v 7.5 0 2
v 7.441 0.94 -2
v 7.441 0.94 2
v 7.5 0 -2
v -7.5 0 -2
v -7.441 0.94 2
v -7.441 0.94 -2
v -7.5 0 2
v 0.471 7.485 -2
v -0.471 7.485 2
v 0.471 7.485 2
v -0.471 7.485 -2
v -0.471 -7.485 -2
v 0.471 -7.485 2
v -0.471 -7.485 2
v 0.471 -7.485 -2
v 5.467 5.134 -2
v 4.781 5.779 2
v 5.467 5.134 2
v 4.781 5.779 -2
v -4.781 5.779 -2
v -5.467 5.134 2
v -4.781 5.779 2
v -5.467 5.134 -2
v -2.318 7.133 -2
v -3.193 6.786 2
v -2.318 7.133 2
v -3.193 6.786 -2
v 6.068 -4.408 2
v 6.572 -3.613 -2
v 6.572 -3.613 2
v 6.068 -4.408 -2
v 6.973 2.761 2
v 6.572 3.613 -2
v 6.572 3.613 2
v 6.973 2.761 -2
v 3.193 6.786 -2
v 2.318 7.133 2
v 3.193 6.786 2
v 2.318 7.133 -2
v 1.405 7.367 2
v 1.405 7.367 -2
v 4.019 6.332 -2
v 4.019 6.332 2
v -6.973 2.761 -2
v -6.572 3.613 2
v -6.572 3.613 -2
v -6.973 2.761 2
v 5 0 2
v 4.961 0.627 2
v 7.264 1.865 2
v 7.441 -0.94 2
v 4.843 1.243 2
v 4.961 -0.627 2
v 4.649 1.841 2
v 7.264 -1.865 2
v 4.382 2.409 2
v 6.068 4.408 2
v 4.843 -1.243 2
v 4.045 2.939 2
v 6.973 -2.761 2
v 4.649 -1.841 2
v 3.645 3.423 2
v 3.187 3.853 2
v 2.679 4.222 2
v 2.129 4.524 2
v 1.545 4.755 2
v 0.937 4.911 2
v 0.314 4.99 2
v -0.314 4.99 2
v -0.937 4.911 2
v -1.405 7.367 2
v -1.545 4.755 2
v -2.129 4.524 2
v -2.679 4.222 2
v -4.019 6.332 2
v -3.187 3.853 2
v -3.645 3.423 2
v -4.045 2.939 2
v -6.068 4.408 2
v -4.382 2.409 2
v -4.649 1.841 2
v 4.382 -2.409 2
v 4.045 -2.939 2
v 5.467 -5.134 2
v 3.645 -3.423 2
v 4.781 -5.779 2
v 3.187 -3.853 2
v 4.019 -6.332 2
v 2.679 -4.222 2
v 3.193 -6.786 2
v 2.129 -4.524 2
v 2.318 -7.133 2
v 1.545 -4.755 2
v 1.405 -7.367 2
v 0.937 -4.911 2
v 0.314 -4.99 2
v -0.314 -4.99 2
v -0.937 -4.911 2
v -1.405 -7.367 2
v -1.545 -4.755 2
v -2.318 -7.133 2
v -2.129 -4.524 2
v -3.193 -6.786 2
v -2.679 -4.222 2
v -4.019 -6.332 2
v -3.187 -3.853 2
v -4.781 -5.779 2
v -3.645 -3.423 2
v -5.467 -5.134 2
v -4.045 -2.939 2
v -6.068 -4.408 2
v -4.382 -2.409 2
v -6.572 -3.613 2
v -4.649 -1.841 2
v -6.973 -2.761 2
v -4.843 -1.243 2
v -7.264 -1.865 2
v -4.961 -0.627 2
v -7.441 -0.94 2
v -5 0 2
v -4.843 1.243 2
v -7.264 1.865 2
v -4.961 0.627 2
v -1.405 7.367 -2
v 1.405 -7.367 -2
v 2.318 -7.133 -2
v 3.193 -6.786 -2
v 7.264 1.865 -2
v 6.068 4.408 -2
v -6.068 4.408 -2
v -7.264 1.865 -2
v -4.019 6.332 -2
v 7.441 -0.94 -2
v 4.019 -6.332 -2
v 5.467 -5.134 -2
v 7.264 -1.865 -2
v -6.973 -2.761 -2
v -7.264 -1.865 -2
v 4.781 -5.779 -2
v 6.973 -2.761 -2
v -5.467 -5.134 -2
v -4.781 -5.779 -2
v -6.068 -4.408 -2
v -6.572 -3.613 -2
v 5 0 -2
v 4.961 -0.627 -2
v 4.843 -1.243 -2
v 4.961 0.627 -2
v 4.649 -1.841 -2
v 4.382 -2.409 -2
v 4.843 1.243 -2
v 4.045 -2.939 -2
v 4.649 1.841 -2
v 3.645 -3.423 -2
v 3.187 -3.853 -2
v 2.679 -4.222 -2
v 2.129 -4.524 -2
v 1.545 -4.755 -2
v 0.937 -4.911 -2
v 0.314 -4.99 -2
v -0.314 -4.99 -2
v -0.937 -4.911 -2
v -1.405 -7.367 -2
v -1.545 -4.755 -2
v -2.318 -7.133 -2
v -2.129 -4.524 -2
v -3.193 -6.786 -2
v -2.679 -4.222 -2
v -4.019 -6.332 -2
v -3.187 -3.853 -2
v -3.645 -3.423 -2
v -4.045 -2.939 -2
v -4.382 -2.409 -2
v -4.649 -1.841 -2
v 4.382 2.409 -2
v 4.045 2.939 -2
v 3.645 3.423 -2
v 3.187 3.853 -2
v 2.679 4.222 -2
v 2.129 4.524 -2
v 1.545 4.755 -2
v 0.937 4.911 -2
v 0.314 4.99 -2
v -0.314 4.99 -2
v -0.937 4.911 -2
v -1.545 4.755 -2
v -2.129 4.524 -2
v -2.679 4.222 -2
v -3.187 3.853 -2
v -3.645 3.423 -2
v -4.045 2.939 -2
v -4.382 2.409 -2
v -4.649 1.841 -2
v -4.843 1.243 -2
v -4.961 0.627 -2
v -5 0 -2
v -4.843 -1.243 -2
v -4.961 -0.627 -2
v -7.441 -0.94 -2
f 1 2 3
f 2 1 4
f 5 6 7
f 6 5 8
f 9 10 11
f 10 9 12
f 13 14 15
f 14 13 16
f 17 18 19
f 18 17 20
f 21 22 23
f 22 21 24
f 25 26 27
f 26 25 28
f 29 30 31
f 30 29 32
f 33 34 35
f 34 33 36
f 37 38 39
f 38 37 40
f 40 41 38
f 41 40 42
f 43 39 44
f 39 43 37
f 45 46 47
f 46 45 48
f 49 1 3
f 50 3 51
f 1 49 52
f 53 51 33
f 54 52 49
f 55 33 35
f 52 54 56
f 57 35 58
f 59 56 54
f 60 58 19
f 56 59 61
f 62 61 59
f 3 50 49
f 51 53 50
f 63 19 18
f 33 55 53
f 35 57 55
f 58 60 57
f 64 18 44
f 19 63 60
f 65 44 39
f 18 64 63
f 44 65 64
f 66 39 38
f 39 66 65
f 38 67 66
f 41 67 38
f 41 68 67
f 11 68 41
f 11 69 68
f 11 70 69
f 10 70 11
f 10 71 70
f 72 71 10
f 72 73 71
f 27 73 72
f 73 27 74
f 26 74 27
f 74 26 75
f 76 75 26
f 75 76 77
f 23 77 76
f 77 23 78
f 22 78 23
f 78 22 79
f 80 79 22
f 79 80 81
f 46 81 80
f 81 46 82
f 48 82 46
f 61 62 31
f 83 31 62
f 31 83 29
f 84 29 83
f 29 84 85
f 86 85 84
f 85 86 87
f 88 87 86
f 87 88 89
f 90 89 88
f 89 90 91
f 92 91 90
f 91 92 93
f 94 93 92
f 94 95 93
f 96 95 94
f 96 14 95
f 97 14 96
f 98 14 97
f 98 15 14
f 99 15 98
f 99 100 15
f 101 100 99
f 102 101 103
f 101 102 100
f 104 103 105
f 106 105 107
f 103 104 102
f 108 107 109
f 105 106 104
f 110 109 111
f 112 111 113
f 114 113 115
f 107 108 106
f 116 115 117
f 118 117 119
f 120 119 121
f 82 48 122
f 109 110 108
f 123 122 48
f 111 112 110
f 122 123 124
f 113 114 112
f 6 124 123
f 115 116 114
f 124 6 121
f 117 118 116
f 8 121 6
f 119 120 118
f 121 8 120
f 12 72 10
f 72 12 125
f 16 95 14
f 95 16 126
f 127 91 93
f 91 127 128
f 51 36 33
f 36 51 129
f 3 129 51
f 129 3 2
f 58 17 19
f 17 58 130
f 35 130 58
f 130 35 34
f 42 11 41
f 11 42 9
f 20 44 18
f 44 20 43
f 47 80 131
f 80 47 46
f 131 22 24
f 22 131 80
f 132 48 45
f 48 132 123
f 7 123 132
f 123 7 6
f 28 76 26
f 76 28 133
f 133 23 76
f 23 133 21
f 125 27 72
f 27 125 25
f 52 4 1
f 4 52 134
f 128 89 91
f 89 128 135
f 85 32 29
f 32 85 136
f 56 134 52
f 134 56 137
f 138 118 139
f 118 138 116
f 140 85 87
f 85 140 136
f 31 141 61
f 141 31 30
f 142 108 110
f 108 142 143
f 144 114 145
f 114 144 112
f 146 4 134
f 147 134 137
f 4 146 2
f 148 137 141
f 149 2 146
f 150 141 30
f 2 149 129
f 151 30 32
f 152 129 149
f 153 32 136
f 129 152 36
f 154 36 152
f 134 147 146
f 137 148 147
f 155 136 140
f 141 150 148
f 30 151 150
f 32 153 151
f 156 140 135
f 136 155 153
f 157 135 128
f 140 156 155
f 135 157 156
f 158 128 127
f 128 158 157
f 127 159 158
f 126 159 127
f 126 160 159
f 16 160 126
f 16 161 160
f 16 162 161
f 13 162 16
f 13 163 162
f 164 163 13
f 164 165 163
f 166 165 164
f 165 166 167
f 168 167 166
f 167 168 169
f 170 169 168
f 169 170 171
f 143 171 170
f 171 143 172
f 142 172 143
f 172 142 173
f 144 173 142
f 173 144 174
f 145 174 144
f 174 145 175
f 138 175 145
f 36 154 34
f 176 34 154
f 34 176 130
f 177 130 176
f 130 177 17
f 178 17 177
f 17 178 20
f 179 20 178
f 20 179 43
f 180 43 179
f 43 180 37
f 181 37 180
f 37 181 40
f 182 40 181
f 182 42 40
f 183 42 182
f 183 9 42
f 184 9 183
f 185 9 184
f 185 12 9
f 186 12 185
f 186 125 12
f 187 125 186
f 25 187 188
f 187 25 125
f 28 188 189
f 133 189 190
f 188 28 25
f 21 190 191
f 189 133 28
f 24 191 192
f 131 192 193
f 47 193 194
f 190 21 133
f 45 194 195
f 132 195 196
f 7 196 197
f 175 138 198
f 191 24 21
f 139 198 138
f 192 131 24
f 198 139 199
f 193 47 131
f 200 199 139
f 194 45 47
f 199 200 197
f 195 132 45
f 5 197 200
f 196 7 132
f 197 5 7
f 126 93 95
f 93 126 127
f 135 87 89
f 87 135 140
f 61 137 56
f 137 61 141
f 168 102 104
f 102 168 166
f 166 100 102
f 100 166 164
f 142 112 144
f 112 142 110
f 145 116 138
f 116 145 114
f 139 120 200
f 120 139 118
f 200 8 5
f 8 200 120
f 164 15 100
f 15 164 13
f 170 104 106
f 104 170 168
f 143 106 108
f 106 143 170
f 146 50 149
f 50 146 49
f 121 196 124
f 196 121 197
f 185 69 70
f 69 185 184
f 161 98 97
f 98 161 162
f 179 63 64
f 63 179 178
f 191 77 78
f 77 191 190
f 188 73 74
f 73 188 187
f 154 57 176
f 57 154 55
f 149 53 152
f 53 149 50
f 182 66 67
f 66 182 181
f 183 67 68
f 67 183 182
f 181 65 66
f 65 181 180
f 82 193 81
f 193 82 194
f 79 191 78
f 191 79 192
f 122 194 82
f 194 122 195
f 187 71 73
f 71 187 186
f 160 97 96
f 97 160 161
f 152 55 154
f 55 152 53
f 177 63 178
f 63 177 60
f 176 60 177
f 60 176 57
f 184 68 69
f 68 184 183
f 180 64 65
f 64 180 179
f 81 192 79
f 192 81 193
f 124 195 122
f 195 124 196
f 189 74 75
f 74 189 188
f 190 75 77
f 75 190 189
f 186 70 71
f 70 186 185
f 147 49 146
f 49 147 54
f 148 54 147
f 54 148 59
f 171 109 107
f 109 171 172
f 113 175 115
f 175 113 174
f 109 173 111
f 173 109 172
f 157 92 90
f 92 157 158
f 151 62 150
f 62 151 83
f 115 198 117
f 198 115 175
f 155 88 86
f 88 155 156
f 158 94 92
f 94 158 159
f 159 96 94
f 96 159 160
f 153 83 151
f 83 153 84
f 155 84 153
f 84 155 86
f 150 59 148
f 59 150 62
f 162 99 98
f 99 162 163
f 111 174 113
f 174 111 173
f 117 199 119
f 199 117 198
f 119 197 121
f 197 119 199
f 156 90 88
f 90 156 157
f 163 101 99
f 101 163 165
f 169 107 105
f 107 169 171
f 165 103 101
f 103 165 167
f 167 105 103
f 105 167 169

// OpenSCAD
$fn = 50;


difference() {
	union() {
		translate(v = [0, 0, -2.0000000000]) {
			cylinder(h = 4, r = 7.5000000000);
		}
	}
	union() {
		translate(v = [0, 0, -100.0000000000]) {
			cylinder(h = 200, r = 5);
		}
	}
}
